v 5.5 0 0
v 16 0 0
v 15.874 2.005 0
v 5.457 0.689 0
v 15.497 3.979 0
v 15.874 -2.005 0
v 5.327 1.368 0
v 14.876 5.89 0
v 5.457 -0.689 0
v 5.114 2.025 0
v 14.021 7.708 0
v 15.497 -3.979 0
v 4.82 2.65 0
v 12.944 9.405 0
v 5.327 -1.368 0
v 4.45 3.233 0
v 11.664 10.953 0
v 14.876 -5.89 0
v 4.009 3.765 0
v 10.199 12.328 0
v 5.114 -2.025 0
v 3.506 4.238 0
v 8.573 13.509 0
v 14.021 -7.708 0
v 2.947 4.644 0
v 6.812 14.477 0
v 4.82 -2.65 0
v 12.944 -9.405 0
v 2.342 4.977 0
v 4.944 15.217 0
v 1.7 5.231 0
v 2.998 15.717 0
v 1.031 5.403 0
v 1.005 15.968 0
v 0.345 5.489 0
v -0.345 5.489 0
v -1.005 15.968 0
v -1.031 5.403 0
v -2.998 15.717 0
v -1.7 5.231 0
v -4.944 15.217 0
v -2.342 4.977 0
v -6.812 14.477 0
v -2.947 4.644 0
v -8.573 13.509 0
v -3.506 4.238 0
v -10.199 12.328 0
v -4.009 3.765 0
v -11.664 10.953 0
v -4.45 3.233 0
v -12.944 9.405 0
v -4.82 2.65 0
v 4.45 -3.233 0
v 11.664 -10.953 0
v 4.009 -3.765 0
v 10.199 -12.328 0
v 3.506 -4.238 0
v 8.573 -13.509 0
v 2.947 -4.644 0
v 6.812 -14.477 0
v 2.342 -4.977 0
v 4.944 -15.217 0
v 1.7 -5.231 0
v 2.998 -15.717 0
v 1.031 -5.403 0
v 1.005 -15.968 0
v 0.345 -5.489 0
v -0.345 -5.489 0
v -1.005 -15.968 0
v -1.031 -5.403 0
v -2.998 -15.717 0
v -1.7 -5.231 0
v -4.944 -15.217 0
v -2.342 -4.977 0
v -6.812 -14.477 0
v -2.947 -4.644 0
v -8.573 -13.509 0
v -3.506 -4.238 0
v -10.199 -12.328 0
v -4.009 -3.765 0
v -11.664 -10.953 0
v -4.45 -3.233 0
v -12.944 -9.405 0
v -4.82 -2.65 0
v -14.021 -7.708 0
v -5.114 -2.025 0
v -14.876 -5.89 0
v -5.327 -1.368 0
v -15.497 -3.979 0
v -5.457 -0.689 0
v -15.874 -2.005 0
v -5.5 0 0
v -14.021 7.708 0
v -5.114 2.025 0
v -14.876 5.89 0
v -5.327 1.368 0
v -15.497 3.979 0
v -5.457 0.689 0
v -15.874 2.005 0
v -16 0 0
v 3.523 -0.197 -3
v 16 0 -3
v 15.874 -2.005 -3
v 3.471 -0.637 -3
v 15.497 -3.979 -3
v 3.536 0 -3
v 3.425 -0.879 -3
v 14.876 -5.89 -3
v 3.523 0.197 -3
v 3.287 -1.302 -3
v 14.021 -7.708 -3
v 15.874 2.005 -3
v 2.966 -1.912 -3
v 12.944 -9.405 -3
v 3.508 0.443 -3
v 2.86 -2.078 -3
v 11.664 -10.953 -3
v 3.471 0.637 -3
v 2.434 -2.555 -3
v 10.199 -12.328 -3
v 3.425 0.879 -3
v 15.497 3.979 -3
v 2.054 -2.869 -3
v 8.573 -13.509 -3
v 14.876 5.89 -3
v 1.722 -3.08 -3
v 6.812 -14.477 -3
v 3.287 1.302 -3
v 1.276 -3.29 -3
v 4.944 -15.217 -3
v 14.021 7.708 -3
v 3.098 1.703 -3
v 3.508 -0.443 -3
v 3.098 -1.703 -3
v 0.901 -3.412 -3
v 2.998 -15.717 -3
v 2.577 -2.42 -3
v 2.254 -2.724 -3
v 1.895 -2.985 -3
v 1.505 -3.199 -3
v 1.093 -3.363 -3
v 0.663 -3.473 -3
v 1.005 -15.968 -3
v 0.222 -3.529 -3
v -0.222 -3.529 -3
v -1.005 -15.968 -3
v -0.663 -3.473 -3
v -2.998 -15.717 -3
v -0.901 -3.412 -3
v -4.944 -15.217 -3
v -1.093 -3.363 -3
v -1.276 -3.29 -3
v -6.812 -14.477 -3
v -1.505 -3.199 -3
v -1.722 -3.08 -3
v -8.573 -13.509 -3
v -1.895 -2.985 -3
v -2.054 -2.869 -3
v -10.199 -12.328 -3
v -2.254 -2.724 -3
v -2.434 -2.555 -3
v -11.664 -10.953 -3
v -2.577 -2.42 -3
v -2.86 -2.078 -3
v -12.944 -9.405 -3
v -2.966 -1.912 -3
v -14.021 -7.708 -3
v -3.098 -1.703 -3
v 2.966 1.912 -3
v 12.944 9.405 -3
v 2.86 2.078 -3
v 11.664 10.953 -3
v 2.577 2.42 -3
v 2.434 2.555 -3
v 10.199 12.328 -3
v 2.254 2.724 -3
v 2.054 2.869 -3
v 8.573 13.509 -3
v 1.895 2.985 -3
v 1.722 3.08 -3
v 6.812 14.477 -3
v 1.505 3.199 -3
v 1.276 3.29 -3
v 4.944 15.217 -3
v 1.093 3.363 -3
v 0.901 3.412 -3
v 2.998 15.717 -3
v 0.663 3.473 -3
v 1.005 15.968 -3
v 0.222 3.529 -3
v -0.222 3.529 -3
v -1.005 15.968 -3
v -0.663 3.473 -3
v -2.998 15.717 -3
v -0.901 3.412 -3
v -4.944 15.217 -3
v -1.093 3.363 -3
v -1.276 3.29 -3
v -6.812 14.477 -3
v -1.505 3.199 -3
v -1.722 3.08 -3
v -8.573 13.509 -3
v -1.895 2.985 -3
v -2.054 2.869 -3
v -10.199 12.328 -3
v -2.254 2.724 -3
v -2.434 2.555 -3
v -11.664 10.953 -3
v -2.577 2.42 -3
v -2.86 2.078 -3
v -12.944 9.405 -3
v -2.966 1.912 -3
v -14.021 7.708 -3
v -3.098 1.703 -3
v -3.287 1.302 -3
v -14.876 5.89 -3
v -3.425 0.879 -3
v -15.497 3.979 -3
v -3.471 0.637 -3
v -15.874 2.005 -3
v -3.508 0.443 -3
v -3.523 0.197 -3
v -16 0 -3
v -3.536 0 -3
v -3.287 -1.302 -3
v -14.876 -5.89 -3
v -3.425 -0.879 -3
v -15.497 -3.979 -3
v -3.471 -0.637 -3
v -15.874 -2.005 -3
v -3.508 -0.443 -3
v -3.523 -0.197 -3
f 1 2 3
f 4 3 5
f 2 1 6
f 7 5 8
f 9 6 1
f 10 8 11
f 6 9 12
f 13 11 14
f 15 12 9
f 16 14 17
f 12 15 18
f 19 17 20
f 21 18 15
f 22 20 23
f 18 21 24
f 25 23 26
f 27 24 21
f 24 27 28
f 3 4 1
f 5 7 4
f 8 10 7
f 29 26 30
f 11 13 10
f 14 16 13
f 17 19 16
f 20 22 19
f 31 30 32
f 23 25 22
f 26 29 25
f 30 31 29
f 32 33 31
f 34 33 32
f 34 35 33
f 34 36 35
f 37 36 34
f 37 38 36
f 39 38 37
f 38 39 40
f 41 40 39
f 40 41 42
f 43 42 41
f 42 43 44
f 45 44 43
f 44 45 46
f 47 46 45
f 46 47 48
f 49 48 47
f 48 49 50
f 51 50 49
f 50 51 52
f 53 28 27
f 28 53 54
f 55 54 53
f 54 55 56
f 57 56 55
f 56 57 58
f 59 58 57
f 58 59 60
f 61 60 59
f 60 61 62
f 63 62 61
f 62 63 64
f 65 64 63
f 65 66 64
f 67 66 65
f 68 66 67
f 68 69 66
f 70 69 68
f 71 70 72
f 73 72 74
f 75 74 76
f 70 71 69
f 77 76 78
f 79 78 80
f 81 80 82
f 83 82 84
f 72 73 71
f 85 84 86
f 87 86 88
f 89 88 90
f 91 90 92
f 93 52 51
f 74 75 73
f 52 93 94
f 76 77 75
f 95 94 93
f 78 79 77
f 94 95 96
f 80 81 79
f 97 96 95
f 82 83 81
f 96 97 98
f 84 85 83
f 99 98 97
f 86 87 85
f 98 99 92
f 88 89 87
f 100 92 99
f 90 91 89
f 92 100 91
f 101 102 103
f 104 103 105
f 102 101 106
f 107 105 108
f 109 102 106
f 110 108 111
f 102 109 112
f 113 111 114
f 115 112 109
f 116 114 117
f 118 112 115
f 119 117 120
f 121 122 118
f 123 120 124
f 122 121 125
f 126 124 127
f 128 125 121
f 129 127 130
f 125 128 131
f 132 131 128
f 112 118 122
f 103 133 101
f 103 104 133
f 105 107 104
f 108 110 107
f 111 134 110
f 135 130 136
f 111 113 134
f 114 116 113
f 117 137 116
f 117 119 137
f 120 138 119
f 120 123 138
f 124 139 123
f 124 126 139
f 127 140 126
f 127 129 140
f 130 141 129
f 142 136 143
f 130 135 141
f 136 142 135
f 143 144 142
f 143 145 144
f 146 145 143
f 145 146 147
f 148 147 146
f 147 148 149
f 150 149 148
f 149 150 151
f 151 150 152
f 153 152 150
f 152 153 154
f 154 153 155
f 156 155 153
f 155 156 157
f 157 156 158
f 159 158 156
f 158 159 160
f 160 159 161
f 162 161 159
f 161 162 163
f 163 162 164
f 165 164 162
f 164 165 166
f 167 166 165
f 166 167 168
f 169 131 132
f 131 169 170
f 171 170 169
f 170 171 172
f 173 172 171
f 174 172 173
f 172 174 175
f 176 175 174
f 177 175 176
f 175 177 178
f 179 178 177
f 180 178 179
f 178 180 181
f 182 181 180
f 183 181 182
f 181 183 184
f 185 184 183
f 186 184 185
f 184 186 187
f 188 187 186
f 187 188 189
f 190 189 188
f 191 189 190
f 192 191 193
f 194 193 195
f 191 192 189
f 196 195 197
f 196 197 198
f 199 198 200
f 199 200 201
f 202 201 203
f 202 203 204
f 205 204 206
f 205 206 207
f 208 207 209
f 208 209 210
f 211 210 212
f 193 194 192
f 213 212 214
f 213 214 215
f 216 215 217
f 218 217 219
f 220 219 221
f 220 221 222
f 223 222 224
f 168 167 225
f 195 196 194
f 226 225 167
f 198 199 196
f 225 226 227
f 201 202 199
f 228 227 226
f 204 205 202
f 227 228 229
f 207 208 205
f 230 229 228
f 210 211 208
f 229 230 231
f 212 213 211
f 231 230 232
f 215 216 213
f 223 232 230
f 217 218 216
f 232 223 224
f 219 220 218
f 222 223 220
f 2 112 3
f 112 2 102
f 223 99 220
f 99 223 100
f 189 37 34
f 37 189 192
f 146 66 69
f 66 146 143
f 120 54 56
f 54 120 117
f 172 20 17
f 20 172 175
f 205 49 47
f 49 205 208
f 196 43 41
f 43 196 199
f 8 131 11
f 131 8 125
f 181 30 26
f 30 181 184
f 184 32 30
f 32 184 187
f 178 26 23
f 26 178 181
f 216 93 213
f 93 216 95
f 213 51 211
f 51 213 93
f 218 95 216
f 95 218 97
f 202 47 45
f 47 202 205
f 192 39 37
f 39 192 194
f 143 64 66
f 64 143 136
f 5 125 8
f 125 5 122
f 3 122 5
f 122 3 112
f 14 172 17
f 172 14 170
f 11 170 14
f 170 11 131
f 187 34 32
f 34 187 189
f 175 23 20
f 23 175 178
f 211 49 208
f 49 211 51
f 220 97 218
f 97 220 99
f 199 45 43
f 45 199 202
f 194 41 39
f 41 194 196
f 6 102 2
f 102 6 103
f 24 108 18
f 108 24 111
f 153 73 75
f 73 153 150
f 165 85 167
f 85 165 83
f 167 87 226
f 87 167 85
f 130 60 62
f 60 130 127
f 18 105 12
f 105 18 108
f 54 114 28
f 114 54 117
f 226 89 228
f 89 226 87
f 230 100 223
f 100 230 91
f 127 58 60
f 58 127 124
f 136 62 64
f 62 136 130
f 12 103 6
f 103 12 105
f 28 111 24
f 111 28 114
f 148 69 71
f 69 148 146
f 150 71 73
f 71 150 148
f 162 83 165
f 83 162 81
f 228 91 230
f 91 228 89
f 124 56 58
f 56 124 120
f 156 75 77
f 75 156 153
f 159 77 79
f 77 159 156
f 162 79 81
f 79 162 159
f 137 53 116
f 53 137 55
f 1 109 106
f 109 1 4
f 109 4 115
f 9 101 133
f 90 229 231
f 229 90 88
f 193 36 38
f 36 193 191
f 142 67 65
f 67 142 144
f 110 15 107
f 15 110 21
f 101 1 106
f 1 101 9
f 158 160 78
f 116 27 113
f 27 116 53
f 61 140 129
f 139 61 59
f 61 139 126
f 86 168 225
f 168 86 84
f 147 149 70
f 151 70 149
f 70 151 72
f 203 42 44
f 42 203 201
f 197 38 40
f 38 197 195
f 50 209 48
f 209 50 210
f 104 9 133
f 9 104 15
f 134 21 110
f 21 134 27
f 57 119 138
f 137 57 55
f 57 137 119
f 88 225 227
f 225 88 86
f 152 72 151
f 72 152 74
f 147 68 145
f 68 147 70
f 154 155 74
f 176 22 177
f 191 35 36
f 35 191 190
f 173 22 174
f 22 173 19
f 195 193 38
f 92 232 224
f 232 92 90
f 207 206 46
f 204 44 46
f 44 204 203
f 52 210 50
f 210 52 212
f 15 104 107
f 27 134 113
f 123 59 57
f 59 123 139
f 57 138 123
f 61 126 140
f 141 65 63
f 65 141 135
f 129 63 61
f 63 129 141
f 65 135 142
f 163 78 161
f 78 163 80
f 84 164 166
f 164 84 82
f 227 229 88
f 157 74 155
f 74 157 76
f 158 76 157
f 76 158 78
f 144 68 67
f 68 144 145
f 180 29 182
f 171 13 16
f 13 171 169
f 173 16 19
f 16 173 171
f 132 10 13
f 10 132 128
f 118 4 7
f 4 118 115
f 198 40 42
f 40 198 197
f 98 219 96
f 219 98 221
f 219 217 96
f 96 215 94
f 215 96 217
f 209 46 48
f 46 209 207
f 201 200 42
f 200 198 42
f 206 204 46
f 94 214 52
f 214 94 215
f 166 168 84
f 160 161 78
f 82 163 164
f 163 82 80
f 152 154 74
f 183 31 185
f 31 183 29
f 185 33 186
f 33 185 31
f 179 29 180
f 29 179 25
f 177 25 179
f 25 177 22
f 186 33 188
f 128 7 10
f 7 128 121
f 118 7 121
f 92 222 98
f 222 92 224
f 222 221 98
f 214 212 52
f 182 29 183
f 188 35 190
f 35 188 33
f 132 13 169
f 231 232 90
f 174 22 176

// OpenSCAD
$fn = 50;


difference() {
	union() {
		translate(v = [0, 0, -3.0000000000]) {
			cylinder(h = 3, r = 7.0000000000);
		}
		translate(v = [0, 0, -3.0000000000]) {
			cylinder(h = 3, r = 16.0000000000);
		}
	}
	union() {
		translate(v = [0, 0, 0]) {
			rotate(a = [0, 0, 0]) {
				difference() {
					union() {
						#translate(v = [0, 0, -3.0000000000]) {
							cylinder(h = 3, r = 2.2500000000);
						}
						#translate(v = [0, 0, -4.2000000000]) {
							cylinder(h = 4.2000000000, r = 7.0000000000, r1 = 2.7500000000, r2 = 5.5000000000);
						}
						#translate(v = [0, 0, -3.0000000000]) {
							cylinder(h = 3, r = 2.7500000000);
						}
						#translate(v = [0, 0, -3.0000000000]) {
							cylinder(h = 3, r = 2.2500000000);
						}
					}
					union();
				}
			}
		}
	}
}
